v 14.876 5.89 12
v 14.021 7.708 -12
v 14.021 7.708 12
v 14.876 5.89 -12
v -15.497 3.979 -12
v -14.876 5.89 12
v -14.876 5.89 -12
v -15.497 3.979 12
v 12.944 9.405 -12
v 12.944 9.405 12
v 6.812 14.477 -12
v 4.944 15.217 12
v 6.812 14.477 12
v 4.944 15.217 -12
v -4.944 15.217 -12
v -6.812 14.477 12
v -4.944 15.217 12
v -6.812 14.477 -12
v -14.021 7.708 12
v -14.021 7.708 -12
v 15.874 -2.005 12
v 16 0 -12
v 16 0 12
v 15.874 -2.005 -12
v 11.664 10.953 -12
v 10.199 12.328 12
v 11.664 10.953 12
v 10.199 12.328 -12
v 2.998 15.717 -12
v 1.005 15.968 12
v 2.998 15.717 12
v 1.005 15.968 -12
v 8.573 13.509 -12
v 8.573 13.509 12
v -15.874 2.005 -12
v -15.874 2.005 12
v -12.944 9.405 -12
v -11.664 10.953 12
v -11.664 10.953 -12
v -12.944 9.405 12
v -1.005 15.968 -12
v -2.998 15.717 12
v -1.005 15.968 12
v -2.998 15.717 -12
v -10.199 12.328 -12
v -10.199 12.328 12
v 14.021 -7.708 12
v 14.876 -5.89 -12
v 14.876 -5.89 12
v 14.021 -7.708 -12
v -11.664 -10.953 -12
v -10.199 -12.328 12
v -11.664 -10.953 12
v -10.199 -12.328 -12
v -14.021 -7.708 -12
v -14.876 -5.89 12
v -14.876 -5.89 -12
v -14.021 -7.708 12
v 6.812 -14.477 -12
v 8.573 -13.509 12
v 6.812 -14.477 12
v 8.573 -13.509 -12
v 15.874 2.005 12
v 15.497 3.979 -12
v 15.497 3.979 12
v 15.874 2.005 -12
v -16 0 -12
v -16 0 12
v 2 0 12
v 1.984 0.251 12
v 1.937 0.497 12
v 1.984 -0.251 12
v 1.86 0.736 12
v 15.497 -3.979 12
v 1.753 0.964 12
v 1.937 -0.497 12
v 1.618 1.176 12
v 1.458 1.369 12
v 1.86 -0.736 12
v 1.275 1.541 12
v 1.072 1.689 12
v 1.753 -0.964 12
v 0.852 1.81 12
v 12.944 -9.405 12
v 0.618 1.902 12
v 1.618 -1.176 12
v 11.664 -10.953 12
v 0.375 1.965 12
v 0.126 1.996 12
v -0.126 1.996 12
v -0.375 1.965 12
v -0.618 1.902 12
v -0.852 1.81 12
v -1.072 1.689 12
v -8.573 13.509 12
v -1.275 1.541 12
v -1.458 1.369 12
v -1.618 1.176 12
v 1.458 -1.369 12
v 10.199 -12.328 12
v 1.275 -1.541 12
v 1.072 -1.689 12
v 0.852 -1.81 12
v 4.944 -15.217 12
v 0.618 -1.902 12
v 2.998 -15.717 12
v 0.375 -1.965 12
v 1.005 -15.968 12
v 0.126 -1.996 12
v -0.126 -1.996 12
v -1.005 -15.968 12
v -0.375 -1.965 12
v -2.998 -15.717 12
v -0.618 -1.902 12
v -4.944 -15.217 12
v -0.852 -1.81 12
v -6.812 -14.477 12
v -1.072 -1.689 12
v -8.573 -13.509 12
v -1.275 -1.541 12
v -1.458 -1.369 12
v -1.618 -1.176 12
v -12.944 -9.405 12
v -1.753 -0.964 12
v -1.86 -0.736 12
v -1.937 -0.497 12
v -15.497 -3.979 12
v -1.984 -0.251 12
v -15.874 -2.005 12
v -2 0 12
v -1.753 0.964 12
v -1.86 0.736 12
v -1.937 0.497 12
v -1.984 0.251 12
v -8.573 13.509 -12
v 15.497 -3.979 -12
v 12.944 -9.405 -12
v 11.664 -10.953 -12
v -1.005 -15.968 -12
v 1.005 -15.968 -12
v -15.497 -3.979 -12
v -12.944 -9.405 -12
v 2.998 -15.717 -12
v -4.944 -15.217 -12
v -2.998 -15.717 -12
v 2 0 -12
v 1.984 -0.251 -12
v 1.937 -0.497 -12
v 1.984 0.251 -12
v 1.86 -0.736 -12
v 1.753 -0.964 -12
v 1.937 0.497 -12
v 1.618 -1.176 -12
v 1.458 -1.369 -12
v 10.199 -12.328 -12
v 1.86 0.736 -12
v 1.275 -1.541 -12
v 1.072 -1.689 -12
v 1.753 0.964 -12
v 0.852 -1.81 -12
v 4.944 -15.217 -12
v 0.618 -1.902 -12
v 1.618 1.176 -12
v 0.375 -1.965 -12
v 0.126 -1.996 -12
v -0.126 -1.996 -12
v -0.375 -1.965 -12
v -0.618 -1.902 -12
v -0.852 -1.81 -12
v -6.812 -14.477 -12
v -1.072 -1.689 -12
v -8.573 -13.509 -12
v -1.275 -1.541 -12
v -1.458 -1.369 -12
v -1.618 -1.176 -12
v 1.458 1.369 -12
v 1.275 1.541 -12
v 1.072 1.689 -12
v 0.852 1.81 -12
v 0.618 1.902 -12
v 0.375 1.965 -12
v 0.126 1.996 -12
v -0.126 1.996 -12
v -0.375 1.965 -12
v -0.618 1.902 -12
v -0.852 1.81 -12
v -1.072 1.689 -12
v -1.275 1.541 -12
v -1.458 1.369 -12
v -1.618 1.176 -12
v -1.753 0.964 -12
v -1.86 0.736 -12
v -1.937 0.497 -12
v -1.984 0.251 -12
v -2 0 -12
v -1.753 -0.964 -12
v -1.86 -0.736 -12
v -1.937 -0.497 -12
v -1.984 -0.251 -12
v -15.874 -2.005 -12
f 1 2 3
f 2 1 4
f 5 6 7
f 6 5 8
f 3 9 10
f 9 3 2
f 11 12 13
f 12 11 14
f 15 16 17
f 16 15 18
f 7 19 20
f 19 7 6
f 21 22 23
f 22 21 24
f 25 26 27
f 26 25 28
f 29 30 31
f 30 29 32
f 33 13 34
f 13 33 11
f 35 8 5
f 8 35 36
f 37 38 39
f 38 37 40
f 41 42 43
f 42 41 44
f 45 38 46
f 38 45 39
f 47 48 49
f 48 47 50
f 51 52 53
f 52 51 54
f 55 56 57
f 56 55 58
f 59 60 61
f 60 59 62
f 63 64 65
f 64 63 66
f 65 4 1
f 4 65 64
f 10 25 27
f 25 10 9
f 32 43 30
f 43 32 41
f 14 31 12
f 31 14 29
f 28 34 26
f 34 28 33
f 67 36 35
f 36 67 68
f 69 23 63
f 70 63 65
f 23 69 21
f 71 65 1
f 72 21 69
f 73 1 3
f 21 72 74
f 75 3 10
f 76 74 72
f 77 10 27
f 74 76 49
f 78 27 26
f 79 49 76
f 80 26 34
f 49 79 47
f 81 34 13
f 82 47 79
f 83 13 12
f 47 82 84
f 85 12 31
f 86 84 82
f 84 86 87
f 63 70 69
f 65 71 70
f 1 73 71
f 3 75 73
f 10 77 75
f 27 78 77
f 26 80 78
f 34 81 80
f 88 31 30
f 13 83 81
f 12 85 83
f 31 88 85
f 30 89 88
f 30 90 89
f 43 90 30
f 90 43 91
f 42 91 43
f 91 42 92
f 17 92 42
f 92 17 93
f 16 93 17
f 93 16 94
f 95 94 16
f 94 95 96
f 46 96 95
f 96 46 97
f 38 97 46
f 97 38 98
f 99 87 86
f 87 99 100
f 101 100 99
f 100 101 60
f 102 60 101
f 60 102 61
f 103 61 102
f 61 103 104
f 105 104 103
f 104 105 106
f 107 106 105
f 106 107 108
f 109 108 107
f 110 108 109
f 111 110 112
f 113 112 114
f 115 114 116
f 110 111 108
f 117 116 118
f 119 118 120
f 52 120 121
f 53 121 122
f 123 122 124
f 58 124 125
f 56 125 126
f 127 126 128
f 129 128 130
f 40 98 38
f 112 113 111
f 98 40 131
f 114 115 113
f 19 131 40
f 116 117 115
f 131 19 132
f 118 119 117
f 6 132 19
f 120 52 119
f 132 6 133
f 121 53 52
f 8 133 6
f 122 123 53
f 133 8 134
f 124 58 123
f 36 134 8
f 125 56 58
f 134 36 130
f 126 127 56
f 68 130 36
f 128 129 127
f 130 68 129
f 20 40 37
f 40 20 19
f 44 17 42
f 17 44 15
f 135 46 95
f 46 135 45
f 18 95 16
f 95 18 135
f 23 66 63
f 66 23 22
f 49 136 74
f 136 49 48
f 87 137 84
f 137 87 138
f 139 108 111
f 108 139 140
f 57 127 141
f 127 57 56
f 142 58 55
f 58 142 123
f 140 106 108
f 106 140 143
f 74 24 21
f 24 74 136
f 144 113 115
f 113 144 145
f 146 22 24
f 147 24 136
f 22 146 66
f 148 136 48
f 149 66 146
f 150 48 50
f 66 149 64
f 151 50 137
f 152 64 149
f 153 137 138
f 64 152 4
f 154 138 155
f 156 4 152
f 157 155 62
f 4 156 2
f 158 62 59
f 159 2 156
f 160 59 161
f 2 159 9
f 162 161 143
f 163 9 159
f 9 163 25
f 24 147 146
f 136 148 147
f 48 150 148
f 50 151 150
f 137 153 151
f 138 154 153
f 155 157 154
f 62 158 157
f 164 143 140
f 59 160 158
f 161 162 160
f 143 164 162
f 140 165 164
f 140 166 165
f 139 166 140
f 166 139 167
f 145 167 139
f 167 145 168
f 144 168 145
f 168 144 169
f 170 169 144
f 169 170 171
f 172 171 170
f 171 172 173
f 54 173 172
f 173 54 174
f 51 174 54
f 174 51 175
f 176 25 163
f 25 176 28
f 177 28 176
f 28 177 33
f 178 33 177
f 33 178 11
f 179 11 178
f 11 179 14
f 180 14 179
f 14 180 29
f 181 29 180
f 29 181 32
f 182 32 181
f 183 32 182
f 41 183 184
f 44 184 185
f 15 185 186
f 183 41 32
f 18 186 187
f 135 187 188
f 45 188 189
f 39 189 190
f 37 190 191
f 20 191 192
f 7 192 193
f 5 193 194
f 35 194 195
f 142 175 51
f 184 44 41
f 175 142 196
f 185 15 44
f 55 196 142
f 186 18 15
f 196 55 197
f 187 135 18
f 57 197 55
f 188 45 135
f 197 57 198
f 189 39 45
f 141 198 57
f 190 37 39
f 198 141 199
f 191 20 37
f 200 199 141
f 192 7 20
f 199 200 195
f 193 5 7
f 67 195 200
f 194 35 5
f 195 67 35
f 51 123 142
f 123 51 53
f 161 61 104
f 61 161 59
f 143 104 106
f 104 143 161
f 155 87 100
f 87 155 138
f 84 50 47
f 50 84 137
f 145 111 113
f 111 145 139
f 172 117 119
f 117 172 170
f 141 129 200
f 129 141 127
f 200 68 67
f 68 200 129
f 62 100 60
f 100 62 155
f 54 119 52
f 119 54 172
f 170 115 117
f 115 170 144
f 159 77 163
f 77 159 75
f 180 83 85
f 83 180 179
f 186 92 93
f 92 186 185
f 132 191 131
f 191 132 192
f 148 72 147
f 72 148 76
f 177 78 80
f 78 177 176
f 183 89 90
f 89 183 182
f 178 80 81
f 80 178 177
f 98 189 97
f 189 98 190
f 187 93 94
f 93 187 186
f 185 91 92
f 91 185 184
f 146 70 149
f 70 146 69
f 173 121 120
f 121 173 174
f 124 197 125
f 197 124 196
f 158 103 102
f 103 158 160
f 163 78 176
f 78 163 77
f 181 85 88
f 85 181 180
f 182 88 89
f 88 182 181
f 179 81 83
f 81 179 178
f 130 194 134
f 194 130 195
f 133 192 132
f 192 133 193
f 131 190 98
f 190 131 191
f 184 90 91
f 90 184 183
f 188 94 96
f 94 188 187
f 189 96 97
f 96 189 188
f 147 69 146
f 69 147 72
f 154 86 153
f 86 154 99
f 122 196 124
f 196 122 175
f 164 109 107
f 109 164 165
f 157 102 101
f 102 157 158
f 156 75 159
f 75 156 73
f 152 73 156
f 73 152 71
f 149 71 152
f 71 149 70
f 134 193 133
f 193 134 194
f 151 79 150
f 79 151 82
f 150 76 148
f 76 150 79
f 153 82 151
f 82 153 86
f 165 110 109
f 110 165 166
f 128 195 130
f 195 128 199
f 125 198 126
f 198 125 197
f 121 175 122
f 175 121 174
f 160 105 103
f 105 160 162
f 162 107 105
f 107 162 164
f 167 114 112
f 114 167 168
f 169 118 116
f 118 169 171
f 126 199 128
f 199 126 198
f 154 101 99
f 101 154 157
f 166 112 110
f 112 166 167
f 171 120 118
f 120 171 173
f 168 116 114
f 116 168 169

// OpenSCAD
$fn = 50;


difference() {
	union() {
		translate(v = [0, 0, -12.0000000000]) {
			cylinder(h = 24, r = 16.0000000000);
		}
	}
	union() {
		translate(v = [0, 0, -100.0000000000]) {
			cylinder(h = 200, r = 2);
		}
	}
}
